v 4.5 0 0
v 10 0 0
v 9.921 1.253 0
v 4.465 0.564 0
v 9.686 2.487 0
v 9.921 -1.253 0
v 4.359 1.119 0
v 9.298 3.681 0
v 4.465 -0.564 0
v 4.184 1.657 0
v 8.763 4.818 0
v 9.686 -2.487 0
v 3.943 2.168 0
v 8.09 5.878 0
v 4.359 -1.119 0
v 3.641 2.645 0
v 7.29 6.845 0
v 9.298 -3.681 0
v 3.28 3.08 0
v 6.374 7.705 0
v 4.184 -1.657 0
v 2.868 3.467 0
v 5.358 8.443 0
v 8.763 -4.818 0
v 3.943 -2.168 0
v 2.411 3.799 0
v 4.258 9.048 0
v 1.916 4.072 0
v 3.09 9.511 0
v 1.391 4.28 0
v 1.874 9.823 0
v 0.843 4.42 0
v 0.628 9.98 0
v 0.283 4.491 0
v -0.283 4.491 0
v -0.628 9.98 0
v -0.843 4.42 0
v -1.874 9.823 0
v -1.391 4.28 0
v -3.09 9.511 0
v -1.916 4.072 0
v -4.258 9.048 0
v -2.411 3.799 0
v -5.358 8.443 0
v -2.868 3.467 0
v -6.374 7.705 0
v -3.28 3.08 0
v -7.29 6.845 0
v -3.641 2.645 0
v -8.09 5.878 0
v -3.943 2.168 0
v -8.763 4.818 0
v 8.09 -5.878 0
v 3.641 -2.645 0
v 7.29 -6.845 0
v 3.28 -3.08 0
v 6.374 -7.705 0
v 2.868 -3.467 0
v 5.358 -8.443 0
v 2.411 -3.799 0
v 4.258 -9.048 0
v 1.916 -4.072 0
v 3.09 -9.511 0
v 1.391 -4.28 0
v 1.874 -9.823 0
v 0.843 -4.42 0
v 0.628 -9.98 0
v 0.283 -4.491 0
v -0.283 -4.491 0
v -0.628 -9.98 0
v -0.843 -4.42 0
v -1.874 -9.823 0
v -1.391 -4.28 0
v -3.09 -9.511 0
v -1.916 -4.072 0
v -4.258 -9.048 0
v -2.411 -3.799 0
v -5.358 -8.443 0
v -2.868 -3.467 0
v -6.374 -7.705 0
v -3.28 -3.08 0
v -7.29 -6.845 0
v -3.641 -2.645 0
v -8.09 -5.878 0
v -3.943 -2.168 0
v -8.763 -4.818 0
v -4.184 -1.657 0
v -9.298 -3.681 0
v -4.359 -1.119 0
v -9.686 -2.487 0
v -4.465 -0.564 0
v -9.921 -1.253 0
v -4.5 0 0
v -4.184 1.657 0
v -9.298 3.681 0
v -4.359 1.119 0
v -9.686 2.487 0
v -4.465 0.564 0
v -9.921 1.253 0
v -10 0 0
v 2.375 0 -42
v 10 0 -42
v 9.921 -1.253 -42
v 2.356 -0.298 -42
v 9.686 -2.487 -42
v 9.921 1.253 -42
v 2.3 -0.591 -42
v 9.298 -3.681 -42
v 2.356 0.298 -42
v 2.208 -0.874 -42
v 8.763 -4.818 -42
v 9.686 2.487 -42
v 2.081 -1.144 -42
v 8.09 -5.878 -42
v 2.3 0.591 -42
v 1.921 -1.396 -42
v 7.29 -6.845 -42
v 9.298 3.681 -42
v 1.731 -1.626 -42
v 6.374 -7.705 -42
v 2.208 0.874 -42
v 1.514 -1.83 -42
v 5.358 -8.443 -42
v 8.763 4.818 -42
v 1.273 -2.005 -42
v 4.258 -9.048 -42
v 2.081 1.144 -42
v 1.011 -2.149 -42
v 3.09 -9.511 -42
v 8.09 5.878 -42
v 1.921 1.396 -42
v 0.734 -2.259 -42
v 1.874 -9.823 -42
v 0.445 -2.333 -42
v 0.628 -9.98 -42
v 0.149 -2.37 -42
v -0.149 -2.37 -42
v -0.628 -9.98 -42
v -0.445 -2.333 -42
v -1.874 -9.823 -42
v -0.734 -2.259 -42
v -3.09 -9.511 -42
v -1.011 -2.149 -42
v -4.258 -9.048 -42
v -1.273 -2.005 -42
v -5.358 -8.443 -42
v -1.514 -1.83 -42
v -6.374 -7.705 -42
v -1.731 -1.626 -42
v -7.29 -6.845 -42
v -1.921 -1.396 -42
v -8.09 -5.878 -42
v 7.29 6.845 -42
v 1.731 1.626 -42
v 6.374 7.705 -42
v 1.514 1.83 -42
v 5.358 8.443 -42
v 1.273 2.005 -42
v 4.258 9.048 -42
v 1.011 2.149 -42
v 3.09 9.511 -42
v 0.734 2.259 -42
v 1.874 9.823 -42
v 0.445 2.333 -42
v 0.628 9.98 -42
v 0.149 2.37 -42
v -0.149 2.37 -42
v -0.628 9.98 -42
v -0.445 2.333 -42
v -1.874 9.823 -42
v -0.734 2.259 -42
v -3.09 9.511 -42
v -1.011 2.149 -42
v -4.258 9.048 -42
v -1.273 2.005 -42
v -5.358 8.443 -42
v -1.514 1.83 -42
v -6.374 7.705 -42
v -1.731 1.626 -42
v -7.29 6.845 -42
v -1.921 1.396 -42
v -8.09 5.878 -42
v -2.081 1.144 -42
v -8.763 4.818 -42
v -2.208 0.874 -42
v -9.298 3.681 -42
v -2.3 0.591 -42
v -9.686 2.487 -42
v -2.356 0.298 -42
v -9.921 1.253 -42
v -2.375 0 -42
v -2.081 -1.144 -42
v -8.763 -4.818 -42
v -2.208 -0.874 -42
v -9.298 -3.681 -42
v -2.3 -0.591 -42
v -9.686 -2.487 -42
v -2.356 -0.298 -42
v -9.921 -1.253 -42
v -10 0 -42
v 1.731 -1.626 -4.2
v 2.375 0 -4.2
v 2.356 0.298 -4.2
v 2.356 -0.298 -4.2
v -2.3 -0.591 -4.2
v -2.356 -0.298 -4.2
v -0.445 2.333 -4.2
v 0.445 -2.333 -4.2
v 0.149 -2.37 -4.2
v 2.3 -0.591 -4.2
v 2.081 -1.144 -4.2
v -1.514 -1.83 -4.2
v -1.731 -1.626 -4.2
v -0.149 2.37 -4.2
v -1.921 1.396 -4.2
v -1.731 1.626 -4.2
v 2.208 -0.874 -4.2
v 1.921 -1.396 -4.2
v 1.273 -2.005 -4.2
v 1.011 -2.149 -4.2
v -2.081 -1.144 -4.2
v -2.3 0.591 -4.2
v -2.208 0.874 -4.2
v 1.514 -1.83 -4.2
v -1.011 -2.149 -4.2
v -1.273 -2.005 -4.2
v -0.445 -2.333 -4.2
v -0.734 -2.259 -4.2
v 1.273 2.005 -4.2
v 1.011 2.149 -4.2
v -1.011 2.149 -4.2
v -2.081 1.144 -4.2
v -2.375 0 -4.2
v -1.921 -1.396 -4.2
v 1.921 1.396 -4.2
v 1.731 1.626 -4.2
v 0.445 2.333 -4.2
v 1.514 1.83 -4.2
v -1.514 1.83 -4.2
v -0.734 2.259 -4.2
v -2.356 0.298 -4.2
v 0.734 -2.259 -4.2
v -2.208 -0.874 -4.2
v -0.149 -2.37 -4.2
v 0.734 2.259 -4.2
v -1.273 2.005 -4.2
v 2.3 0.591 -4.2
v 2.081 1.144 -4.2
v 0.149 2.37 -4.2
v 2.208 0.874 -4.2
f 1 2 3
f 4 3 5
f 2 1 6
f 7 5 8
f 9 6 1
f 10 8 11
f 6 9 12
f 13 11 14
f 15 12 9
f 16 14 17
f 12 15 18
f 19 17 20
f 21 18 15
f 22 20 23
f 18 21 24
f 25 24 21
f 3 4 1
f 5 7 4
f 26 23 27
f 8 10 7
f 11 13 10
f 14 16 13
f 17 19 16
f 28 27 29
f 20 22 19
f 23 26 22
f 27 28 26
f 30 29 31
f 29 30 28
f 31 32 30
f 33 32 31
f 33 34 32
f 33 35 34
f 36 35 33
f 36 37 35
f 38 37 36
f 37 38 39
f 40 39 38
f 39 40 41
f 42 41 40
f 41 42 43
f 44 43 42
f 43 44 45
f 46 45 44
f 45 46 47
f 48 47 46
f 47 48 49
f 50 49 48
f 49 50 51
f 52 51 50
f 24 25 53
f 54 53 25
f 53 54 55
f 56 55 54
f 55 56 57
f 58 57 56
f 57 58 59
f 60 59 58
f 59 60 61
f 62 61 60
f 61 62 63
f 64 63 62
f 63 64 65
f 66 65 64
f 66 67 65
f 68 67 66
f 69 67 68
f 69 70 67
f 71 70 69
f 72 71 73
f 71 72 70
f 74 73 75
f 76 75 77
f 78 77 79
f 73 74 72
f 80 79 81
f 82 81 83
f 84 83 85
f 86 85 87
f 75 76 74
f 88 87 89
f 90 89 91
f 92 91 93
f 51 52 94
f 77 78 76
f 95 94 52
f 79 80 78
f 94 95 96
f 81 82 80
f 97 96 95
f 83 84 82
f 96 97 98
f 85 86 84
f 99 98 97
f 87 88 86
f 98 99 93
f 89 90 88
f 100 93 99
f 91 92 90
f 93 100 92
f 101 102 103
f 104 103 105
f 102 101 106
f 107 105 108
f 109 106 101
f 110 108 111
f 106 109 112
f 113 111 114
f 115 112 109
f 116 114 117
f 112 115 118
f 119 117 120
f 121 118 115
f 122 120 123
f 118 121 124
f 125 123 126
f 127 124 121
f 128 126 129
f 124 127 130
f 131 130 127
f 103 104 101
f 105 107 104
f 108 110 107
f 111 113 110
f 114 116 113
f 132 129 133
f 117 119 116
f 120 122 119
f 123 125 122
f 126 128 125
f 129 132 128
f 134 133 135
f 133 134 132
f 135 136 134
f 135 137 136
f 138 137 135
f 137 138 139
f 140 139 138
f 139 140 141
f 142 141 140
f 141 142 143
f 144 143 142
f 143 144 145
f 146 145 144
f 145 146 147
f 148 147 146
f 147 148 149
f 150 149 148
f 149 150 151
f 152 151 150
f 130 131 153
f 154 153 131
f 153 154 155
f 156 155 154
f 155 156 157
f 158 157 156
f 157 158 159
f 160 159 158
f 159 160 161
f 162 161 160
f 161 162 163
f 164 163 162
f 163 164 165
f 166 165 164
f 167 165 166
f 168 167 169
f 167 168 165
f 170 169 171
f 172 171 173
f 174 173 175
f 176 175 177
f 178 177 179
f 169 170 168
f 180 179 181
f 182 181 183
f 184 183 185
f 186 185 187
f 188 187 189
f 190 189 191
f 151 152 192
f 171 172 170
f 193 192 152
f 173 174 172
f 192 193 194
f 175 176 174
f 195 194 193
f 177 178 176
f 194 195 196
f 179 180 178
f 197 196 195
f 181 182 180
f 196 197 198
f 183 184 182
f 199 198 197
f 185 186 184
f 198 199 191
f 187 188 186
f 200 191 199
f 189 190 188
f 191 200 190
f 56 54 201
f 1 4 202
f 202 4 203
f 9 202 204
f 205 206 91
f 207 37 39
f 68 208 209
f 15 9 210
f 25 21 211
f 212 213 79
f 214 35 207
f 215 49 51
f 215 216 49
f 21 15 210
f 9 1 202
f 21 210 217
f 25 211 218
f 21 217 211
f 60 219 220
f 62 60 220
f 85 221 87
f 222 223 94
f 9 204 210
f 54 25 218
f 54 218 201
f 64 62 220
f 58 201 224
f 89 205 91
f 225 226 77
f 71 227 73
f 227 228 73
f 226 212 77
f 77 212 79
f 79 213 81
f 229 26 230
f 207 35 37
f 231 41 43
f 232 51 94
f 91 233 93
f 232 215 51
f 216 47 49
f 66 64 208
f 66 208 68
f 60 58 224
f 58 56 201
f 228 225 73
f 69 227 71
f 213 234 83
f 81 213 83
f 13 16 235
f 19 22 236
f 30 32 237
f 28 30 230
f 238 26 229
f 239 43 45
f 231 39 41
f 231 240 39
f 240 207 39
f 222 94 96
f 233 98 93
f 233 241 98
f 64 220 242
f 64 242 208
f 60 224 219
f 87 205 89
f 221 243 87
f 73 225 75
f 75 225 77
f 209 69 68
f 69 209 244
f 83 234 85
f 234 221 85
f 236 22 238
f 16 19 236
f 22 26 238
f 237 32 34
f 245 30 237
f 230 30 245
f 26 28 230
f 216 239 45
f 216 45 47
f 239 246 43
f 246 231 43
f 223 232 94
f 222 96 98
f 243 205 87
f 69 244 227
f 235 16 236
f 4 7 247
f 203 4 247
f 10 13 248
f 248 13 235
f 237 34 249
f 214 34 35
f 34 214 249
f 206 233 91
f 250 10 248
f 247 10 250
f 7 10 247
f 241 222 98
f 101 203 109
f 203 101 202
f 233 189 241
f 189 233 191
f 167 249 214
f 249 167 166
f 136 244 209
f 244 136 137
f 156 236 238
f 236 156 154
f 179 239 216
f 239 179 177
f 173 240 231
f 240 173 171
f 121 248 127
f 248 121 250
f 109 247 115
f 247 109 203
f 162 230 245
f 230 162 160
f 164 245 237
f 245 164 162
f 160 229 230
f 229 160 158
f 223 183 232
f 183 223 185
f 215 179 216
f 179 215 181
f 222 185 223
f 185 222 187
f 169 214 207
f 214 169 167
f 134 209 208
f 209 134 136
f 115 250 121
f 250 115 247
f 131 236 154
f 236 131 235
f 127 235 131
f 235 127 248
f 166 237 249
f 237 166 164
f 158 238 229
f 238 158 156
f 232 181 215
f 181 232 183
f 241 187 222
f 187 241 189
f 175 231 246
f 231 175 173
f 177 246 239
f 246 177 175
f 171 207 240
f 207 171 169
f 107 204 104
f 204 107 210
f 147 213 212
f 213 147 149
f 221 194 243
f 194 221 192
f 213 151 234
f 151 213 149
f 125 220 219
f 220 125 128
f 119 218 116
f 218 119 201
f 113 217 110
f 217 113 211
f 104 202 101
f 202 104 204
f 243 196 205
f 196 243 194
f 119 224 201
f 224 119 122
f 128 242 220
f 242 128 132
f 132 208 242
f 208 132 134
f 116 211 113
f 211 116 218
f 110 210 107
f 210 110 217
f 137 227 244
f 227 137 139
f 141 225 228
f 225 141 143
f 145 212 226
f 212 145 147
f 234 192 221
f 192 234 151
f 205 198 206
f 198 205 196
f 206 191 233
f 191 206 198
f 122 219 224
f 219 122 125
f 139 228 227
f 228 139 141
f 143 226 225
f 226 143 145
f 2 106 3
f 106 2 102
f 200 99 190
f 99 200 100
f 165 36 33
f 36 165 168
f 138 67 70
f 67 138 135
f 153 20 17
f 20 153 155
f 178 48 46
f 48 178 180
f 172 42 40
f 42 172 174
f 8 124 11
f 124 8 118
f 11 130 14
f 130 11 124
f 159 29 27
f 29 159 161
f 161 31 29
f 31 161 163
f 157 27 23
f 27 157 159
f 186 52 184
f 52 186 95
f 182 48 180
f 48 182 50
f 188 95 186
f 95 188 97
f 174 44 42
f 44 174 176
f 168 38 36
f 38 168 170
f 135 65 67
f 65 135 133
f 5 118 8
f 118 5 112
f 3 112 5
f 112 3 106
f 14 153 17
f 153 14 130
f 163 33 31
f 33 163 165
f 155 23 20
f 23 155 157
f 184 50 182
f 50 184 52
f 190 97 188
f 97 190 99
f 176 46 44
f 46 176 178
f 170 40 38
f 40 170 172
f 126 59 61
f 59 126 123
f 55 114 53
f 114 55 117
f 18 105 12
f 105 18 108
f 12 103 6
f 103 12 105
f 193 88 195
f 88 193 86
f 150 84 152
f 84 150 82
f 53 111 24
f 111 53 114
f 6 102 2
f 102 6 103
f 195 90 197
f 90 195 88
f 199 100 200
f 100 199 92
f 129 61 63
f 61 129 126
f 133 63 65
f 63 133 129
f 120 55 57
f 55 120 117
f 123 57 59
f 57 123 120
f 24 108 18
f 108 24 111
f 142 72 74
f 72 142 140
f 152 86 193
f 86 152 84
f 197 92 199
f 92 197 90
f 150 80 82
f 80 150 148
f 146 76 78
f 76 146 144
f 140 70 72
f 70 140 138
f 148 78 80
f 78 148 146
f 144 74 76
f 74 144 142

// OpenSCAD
$fn = 50;


difference() {
	union() {
		translate(v = [0, 0, -42.0000000000]) {
			cylinder(h = 42, r = 10.0000000000);
		}
		cylinder(h = 0, r = 13.0000000000);
	}
	union() {
		translate(v = [0, 0, 0]) {
			rotate(a = [0, 0, 0]) {
				difference() {
					union() {
						#translate(v = [0, 0, -42.0000000000]) {
							cylinder(h = 42, r = 2.2500000000);
						}
						#translate(v = [0, 0, -4.2000000000]) {
							cylinder(h = 4.2000000000, r = 10.0000000000, r1 = 2.3750000000, r2 = 4.5000000000);
						}
						#translate(v = [0, 0, -42.0000000000]) {
							cylinder(h = 42, r = 2.3750000000);
						}
						#translate(v = [0, 0, -42.0000000000]) {
							cylinder(h = 42, r = 2.2500000000);
						}
					}
					union();
				}
			}
		}
	}
}
